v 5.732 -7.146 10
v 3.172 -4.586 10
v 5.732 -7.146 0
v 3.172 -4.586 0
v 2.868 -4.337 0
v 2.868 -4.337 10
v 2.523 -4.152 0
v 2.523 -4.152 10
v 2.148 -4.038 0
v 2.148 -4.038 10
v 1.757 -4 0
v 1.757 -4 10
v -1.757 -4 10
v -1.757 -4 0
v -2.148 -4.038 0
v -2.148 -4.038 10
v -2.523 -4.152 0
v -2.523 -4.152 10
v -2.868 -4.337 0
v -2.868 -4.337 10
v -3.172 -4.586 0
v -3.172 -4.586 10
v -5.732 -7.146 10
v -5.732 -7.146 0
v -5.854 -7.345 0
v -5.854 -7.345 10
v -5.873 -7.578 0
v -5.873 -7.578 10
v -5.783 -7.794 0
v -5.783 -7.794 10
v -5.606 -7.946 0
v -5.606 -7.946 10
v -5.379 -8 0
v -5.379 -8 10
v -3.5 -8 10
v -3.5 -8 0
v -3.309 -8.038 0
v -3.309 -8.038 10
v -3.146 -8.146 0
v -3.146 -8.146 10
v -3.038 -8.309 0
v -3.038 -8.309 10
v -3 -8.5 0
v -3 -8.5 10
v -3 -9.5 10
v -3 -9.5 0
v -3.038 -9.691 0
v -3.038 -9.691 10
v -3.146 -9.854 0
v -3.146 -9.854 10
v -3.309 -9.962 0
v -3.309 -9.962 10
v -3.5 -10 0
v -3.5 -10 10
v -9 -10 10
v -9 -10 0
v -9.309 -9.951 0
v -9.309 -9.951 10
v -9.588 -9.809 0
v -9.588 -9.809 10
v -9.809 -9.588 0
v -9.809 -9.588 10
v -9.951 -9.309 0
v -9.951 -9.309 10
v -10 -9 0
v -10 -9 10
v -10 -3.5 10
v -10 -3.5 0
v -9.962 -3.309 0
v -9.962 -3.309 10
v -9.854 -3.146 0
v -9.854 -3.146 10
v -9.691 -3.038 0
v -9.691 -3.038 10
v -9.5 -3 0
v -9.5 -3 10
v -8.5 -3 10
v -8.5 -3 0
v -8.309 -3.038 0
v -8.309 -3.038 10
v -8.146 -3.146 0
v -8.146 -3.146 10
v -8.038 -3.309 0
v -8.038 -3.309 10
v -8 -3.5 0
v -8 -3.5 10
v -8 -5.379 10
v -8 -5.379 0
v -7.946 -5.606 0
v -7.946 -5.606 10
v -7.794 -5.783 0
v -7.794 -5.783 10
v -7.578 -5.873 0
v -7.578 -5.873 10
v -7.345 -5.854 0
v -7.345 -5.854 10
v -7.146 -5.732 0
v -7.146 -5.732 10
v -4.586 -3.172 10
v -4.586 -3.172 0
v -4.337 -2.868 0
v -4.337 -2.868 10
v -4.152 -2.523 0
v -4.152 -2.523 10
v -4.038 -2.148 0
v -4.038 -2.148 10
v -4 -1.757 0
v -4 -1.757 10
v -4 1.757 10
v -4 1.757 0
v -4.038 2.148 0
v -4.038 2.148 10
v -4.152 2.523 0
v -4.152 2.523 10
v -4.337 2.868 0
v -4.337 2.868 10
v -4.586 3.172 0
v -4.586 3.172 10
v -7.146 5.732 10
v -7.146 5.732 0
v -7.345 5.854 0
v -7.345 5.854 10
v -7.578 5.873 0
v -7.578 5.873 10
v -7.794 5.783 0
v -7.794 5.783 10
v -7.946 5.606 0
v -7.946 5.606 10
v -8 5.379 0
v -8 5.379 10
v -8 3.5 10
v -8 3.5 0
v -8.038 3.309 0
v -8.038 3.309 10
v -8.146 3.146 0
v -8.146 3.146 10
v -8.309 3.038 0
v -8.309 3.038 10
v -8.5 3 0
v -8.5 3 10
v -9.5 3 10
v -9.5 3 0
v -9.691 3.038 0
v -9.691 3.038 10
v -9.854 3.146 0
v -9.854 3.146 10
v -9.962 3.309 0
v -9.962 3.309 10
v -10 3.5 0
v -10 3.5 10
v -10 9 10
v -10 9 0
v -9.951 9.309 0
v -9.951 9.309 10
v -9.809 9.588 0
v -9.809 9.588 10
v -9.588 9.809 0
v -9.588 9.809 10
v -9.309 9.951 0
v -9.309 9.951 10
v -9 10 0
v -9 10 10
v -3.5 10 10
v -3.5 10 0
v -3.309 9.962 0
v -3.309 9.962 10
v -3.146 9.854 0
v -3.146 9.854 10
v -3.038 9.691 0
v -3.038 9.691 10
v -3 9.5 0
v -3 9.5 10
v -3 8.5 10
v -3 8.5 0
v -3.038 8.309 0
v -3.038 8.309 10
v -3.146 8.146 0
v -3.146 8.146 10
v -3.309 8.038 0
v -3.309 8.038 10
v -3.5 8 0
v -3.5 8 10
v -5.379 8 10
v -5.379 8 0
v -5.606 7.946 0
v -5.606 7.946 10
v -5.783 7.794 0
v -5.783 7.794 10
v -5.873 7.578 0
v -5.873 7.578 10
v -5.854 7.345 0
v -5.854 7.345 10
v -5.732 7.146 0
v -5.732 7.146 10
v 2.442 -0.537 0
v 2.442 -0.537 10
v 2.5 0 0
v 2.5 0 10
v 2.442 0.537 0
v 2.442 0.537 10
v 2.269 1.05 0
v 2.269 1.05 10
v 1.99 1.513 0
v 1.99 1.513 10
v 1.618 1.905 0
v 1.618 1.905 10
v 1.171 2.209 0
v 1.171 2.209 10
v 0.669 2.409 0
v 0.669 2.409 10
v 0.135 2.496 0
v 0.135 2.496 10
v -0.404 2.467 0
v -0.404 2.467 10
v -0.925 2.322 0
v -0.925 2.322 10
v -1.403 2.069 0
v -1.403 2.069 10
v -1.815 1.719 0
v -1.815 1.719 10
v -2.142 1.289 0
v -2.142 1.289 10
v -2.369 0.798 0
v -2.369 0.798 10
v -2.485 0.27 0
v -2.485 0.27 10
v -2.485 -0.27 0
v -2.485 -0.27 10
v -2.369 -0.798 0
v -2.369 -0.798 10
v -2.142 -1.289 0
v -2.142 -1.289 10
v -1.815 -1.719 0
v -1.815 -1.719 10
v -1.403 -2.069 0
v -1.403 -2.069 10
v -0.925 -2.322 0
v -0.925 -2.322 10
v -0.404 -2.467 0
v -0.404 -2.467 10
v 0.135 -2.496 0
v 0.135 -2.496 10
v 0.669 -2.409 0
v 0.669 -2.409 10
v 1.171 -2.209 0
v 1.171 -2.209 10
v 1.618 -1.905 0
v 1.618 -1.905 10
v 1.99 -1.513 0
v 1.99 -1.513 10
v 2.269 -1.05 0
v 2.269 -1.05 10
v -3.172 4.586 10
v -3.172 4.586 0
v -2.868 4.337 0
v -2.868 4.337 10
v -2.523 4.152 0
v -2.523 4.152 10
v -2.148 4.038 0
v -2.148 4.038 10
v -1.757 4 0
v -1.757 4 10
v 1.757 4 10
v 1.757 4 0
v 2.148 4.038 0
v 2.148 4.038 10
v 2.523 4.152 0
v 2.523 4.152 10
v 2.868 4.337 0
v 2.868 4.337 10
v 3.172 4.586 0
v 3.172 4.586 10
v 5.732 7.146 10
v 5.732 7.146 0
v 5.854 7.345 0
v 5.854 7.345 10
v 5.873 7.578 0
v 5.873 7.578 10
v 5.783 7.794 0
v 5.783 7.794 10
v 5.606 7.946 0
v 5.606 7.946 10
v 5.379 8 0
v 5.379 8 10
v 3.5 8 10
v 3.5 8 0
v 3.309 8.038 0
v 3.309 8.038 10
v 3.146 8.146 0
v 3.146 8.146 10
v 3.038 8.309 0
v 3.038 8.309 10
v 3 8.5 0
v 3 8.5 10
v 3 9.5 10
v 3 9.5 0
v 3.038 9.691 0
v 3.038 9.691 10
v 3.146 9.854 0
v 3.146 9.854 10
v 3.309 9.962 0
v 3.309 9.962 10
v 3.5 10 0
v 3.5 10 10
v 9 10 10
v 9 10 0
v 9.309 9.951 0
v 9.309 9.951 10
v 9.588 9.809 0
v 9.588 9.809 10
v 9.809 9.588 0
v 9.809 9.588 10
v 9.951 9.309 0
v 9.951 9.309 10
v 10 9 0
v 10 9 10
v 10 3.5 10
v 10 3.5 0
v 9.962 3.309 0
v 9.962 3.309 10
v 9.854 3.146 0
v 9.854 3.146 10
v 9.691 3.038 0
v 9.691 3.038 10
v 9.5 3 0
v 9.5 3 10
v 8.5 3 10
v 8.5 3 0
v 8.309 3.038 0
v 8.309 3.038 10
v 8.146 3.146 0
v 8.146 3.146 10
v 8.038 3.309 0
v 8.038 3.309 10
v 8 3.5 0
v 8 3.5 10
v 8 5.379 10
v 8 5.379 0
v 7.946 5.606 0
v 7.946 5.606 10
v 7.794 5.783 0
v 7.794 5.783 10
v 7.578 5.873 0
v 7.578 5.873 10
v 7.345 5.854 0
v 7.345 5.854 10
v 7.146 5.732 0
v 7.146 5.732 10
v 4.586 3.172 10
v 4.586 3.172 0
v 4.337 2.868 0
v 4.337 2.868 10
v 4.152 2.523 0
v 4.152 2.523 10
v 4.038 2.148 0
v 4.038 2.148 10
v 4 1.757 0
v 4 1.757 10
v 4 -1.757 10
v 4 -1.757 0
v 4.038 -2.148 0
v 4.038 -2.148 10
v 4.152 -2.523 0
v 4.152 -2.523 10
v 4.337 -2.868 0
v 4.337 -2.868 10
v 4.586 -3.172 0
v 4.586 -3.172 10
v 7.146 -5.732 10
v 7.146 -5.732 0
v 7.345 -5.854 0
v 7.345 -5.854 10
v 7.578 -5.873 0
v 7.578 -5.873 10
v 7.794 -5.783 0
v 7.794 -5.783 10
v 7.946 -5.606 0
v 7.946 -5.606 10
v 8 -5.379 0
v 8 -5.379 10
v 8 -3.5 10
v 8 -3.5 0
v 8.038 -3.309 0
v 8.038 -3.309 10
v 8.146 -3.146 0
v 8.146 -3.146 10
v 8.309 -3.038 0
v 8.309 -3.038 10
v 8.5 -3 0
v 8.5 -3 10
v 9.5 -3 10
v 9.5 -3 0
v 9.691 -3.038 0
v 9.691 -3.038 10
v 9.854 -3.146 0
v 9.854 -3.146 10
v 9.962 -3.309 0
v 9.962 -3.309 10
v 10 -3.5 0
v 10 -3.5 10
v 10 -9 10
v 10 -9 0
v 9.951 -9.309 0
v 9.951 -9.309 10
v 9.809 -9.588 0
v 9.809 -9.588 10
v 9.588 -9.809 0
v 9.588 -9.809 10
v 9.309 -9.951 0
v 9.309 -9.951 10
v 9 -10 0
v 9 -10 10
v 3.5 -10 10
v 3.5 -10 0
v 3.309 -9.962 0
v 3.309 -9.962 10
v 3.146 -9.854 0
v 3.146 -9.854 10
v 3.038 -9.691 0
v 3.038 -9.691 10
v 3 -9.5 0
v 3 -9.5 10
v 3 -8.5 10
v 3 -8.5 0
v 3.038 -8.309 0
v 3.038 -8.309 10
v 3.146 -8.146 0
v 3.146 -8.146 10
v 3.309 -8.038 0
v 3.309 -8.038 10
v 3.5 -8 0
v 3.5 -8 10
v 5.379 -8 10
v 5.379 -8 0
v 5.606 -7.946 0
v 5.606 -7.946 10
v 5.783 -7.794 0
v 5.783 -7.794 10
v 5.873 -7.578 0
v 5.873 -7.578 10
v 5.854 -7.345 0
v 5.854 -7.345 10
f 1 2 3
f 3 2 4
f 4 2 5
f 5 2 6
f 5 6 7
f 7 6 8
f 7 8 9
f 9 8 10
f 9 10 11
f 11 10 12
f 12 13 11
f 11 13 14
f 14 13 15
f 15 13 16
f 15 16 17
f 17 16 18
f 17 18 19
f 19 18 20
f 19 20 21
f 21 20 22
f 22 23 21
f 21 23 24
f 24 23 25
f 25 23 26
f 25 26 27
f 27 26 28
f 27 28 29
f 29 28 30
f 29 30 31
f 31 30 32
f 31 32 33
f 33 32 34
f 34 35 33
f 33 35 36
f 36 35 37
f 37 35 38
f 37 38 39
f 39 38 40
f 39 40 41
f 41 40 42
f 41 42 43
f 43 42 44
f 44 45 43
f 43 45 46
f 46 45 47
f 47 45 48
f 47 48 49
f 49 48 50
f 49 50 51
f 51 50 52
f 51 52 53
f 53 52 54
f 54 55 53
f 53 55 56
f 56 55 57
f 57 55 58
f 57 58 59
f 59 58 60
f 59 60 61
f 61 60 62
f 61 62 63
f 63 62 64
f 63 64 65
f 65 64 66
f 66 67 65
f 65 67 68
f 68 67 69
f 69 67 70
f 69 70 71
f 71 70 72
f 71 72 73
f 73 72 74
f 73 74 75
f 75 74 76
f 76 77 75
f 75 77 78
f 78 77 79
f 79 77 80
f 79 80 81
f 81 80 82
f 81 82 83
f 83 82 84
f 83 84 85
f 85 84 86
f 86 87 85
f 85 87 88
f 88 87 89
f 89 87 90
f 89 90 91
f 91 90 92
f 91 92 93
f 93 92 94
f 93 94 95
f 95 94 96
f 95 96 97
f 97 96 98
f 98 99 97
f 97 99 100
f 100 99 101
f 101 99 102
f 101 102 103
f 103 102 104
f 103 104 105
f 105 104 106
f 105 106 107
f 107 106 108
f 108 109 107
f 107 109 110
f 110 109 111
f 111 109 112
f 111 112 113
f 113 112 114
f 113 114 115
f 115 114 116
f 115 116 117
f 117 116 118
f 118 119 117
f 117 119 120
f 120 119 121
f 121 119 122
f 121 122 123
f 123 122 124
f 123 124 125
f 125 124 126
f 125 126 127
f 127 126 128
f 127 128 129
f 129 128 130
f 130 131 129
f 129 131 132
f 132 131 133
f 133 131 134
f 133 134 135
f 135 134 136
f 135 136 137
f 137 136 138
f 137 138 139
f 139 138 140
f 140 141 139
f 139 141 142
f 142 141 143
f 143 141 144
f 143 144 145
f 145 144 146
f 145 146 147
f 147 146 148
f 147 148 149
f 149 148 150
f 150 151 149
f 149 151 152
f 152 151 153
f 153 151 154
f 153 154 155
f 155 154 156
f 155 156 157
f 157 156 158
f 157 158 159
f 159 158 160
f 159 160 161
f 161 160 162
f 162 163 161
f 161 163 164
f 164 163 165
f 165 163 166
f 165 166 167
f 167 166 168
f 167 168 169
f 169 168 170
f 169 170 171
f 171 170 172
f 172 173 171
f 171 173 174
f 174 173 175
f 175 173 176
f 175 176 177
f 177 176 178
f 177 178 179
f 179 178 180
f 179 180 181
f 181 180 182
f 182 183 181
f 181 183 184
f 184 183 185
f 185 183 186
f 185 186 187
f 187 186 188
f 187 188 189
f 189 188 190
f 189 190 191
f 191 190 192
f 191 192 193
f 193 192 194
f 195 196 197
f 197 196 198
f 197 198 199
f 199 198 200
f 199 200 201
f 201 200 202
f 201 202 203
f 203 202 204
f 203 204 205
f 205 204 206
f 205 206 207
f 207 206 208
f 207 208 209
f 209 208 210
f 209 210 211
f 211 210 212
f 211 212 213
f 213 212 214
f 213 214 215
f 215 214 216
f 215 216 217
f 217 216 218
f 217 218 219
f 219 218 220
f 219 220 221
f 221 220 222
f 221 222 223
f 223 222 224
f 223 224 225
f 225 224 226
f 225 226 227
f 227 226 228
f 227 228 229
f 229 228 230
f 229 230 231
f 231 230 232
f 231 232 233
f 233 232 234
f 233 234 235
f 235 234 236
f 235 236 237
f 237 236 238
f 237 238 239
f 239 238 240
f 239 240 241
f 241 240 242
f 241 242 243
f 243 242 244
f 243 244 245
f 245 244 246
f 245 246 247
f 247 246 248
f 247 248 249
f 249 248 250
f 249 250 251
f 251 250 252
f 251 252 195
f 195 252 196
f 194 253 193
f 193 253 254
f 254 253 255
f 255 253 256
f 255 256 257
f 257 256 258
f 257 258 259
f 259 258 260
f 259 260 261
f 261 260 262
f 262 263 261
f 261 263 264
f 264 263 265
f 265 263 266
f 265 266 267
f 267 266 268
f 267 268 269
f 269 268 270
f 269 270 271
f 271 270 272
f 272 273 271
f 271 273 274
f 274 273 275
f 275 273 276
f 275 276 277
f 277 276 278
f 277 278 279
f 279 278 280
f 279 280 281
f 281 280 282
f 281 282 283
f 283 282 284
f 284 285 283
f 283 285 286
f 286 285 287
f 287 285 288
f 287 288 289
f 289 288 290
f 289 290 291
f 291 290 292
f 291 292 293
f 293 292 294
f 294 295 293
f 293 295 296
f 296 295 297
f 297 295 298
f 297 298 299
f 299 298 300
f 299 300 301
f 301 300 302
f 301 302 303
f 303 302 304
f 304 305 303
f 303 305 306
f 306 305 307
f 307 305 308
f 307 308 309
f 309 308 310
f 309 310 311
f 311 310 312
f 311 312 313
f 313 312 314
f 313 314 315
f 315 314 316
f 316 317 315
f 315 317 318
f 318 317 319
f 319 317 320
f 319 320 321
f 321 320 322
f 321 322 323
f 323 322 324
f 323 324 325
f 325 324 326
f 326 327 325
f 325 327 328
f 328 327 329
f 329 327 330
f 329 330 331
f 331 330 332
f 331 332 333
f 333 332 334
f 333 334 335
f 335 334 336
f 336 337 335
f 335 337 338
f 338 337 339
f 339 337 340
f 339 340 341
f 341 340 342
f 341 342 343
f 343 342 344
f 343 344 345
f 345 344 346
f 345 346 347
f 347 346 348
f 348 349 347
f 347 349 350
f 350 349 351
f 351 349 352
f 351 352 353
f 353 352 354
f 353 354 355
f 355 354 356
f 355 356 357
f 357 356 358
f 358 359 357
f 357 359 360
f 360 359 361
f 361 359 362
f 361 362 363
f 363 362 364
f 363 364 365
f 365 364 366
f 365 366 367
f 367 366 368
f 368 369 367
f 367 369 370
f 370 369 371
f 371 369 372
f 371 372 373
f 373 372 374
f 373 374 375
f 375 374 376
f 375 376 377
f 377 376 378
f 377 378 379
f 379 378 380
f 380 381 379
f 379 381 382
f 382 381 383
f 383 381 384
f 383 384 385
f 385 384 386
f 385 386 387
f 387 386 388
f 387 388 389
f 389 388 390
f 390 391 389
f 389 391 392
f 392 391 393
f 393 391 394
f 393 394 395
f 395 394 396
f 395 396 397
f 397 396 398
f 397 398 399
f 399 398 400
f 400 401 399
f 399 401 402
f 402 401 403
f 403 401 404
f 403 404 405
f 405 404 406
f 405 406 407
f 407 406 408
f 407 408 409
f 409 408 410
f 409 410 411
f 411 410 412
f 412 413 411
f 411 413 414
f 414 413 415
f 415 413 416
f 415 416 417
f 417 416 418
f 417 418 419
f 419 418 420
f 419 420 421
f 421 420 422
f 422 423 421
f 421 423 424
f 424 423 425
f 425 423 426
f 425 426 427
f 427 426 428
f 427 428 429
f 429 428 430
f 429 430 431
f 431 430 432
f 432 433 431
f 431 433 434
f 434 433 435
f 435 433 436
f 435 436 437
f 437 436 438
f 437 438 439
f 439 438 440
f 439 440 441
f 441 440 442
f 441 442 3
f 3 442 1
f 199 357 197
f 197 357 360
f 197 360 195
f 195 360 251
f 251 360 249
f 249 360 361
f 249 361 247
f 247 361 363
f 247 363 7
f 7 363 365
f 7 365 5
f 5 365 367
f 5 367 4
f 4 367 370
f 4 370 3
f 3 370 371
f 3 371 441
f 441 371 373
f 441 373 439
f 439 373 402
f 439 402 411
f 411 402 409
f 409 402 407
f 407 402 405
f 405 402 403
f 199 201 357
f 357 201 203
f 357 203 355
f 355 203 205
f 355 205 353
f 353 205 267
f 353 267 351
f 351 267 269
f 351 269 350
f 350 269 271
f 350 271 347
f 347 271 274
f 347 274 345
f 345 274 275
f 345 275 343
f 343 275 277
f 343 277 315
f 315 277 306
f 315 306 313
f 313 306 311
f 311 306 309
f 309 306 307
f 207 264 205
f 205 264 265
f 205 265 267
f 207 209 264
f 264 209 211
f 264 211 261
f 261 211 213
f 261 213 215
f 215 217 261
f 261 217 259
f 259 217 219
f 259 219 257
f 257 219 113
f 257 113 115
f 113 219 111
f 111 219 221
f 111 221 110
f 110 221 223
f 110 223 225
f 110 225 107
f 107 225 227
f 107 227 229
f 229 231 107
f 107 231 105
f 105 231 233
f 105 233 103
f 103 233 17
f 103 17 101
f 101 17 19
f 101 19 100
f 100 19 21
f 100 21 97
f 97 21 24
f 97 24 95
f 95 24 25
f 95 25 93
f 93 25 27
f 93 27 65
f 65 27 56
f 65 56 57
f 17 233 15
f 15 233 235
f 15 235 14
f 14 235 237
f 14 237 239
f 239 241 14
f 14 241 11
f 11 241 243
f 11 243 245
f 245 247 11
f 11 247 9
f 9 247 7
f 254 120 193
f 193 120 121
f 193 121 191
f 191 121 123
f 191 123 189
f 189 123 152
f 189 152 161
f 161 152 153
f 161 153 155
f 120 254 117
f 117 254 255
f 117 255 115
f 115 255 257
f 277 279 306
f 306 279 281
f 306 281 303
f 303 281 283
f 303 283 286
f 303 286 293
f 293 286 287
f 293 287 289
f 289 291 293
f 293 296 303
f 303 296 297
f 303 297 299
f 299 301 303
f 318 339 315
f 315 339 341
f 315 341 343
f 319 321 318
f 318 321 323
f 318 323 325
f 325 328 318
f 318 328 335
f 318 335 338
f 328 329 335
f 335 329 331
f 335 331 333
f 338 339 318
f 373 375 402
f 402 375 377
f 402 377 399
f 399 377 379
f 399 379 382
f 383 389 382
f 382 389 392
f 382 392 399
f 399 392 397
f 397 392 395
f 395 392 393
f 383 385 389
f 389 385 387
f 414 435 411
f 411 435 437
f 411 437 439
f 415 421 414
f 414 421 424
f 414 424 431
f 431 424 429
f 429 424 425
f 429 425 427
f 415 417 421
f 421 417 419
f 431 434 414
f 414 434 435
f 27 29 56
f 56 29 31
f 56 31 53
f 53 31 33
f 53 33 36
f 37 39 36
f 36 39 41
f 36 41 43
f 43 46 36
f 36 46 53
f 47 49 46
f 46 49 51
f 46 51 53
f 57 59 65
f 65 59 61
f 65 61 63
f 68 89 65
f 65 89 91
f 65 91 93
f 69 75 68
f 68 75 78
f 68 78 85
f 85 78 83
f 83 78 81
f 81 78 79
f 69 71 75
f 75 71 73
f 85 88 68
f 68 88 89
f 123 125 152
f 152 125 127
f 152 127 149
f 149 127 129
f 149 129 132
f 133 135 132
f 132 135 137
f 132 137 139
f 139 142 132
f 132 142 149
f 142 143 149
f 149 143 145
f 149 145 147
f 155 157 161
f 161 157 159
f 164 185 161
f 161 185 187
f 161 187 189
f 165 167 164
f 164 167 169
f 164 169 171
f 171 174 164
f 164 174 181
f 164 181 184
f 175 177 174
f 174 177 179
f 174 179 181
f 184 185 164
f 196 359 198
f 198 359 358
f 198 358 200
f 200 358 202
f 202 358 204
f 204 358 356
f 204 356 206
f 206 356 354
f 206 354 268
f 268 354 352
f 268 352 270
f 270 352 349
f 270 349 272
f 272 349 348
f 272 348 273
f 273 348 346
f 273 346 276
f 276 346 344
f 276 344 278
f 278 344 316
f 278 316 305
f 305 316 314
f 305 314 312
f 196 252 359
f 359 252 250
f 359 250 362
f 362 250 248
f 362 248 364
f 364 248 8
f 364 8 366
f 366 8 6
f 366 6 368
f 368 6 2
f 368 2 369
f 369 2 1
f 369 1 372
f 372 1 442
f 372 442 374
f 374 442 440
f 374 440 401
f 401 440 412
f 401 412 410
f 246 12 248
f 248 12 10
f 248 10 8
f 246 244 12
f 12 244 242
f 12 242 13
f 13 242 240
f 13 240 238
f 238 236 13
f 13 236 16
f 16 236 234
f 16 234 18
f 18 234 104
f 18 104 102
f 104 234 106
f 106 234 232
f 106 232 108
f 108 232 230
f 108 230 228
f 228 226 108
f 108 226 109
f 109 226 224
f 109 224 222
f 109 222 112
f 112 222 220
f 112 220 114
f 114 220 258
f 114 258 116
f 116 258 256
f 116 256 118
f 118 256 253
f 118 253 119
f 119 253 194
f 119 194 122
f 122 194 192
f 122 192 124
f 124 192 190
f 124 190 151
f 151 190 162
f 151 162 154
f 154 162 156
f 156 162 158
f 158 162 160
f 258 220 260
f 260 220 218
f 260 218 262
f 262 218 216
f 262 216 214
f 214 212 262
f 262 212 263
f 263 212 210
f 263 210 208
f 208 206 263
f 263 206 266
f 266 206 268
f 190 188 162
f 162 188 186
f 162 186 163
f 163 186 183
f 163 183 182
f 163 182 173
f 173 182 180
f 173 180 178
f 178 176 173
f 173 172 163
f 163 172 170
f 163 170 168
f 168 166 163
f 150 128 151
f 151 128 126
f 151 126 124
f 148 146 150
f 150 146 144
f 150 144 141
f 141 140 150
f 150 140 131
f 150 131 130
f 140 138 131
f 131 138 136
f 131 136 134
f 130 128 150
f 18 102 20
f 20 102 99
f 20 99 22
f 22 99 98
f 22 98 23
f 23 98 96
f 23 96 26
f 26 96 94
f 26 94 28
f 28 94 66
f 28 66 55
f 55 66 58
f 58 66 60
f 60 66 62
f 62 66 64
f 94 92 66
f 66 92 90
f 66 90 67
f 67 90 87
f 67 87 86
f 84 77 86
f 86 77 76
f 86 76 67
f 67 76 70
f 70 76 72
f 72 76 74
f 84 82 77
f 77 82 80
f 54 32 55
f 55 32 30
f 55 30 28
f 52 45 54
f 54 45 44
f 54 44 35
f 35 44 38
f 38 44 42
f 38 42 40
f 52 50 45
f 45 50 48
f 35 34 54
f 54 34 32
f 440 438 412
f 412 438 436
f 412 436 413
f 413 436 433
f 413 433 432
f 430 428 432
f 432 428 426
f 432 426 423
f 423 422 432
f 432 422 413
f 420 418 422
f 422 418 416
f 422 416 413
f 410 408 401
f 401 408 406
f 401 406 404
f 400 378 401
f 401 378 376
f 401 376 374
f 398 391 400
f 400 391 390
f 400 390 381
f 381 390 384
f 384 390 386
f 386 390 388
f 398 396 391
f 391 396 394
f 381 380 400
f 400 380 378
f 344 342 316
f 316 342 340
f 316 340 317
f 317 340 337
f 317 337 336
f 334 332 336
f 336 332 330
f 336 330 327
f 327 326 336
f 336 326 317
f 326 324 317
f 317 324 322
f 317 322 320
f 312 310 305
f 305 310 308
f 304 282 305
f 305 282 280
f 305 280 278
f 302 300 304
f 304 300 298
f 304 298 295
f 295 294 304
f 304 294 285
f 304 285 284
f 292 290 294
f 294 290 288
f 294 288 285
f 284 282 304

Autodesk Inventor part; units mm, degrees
ref_plane "YZ Plane" through (0, 0, 0) normal (1, 0, 0) x (0, 1, 0)
ref_plane "Start Plane" through (0, 0, 0) normal (0, 0, 1) x (1, 0, 0)
ref_plane "End Plane" through (0, 0, 10) normal (0, 0, 1) x (1, 0, 0)
sketch "Sketch1" plane through (0, 0, 0) normal (0, 0, 1) x (1, 0, 0)
  line L0 (0, 0) -> (2.5, 0) construction
  line L1 (0, 0) -> (0, 2.5) construction
  line L2 (0, 4) -> (0, -4) construction
  line L3 (0, 4) -> (1.7574, 4)
  arc A0 (1.7574, 4) -> (3.1716, 4.5858) centre (1.7574, 6) ccw
  line L4 (3.1716, 4.5858) -> (5.7322, 7.1464)
  line L5 (-4, 0) -> (4, 0) construction
  line L6 (4, 0) -> (4, 1.7574)
  arc A1 (4.5858, 3.1716) -> (4, 1.7574) centre (6, 1.7574) ccw
  line L7 (4.5858, 3.1716) -> (7.1464, 5.7322)
  line L8 (0, 0) -> (10, 10) construction
  line L9 (0, 0) -> (19.6827, 0) construction
  arc A2 (8, 5.3787) -> (7.1464, 5.7322) centre (7.5, 5.3787) ccw
  line L10 (8, 5.3787) -> (8, 3.5)
  arc A3 (8, 3.5) -> (8.5, 3) centre (8.5, 3.5) ccw
  line L11 (8.5, 3) -> (9.5, 3)
  arc A4 (9.5, 3) -> (10, 3.5) centre (9.5, 3.5) ccw
  line L12 (10, 3.5) -> (10, 9)
  line L13 (10, 9) -> (10, 10) construction
  arc A5 (5.7322, 7.1464) -> (5.3787, 8) centre (5.3787, 7.5) ccw
  line L14 (5.3787, 8) -> (3.5, 8)
  arc A6 (3, 8.5) -> (3.5, 8) centre (3.5, 8.5) ccw
  line L15 (3, 8.5) -> (3, 9.5)
  arc A7 (3.5, 10) -> (3, 9.5) centre (3.5, 9.5) ccw
  line L16 (3.5, 10) -> (9, 10)
  arc A8 (10, 9) -> (9, 10) centre (9, 9) ccw
  line L17 (0, 4) -> (-1.7574, 4)
  arc A9 (-3.1716, 4.5858) -> (-1.7574, 4) centre (-1.7574, 6) ccw
  line L18 (-3.1716, 4.5858) -> (-5.7322, 7.1464)
  line L19 (-4, 0) -> (-4, 1.7574)
  arc A10 (-4, 1.7574) -> (-4.5858, 3.1716) centre (-6, 1.7574) ccw
  line L20 (-4.5858, 3.1716) -> (-7.1464, 5.7322)
  arc A11 (-7.1464, 5.7322) -> (-8, 5.3787) centre (-7.5, 5.3787) ccw
  line L21 (-8, 5.3787) -> (-8, 3.5)
  arc A12 (-8.5, 3) -> (-8, 3.5) centre (-8.5, 3.5) ccw
  line L22 (-8.5, 3) -> (-9.5, 3)
  arc A13 (-10, 3.5) -> (-9.5, 3) centre (-9.5, 3.5) ccw
  line L23 (-10, 3.5) -> (-10, 9)
  arc A14 (-5.3787, 8) -> (-5.7322, 7.1464) centre (-5.3787, 7.5) ccw
  line L24 (-5.3787, 8) -> (-3.5, 8)
  arc A15 (-3.5, 8) -> (-3, 8.5) centre (-3.5, 8.5) ccw
  line L25 (-3, 8.5) -> (-3, 9.5)
  arc A16 (-3, 9.5) -> (-3.5, 10) centre (-3.5, 9.5) ccw
  line L26 (-3.5, 10) -> (-9, 10)
  arc A17 (-9, 10) -> (-10, 9) centre (-9, 9) ccw
  line L27 (0, -4) -> (-1.7574, -4)
  arc A18 (-1.7574, -4) -> (-3.1716, -4.5858) centre (-1.7574, -6) ccw
  line L28 (-3.1716, -4.5858) -> (-5.7322, -7.1464)
  arc A19 (-5.7322, -7.1464) -> (-5.3787, -8) centre (-5.3787, -7.5) ccw
  line L29 (-5.3787, -8) -> (-3.5, -8)
  arc A20 (-3, -8.5) -> (-3.5, -8) centre (-3.5, -8.5) ccw
  line L30 (-3, -8.5) -> (-3, -9.5)
  arc A21 (-3.5, -10) -> (-3, -9.5) centre (-3.5, -9.5) ccw
  line L31 (-3.5, -10) -> (-9, -10)
  arc A22 (-10, -9) -> (-9, -10) centre (-9, -9) ccw
  line L32 (-10, -3.5) -> (-10, -9)
  arc A23 (-9.5, -3) -> (-10, -3.5) centre (-9.5, -3.5) ccw
  line L33 (-8.5, -3) -> (-9.5, -3)
  arc A24 (-8, -3.5) -> (-8.5, -3) centre (-8.5, -3.5) ccw
  line L34 (-8, -5.3787) -> (-8, -3.5)
  arc A25 (-8, -5.3787) -> (-7.1464, -5.7322) centre (-7.5, -5.3787) ccw
  line L35 (-4.5858, -3.1716) -> (-7.1464, -5.7322)
  arc A26 (-4.5858, -3.1716) -> (-4, -1.7574) centre (-6, -1.7574) ccw
  line L36 (-4, 0) -> (-4, -1.7574)
  line L37 (3.5, -10) -> (9, -10)
  arc A27 (9, -10) -> (10, -9) centre (9, -9) ccw
  line L38 (10, -3.5) -> (10, -9)
  arc A28 (10, -3.5) -> (9.5, -3) centre (9.5, -3.5) ccw
  line L39 (8.5, -3) -> (9.5, -3)
  arc A29 (8.5, -3) -> (8, -3.5) centre (8.5, -3.5) ccw
  line L40 (8, -5.3787) -> (8, -3.5)
  arc A30 (7.1464, -5.7322) -> (8, -5.3787) centre (7.5, -5.3787) ccw
  line L41 (4.5858, -3.1716) -> (7.1464, -5.7322)
  arc A31 (4, -1.7574) -> (4.5858, -3.1716) centre (6, -1.7574) ccw
  line L42 (4, 0) -> (4, -1.7574)
  line L43 (5.3787, -8) -> (3.5, -8)
  arc A32 (5.3787, -8) -> (5.7322, -7.1464) centre (5.3787, -7.5) ccw
  line L44 (3.1716, -4.5858) -> (5.7322, -7.1464)
  arc A33 (3.1716, -4.5858) -> (1.7574, -4) centre (1.7574, -6) ccw
  line L45 (0, -4) -> (1.7574, -4)
  arc A34 (3.5, -8) -> (3, -8.5) centre (3.5, -8.5) ccw
  line L46 (3, -8.5) -> (3, -9.5)
  arc A35 (3, -9.5) -> (3.5, -10) centre (3.5, -9.5) ccw
  circle A36 centre (0, 0) radius 2.5
  dimension "d1" = 8
  dimension "d2" = 2
  dimension "d3" = 8
  dimension "d4" = 2
  dimension "d5" = 2
  dimension "d7" = 45
  dimension "d8" = 0.5
  dimension "d9" = 0.5
  dimension "d10" = 0.5
  dimension "d12" = 2
  dimension "d17" = 7
  dimension "d18" = 10
  dimension "d19" = 0.5
  dimension "d20" = 1
  dimension "d21" = 0.5
  dimension "d22" = 0.5
  dimension "d23" = 2
  dimension "d24" = 7
  dimension "d25" = 5
extrude "Body" add sketch "Sketch1" along normal up to surface (10 mm away) from surface at 0
sketch "Sketch2" plane through (0, 0, 0) normal (0, 0, 1) x (1, 0, 0)
  line L0 (0, 0) -> (10, 0)
ref_plane "Work Plane3" through (0, 0, 0) normal (0, -1, 0) x (1, 0, 0)
sketch "Sketch3" plane through (0, 0, 0) normal (0, -1, 0) x (1, 0, 0)
  line L0 (-14, 0) -> (14, 0)
  line L1 (-14, 10) -> (14, 10)
  dimension "d33" = 10
equation "\"d1\" = 8 * sigma"
equation "\"d2\" = 2 * sigma"
equation "\"d3\" = 8 * sigma"
equation "\"d4\" = 2 * sigma"
equation "\"d5\" = 2 * sigma"
equation "\"d8\" = 0.5 * sigma"
equation "\"d9\" = 0.5 * sigma"
equation "\"d10\" = 0.5 * sigma"
equation "\"d12\" = 2 * sigma"
equation "\"d17\" = 7 * sigma"
equation "\"d18\" = sigma"
equation "\"d19\" = 0.5 * sigma"
equation "\"d20\" = sigma"
equation "\"d21\" = 0.5 * sigma"
equation "\"d22\" = 0.5 * sigma"
equation "\"d23\" = 2 * sigma"
equation "\"d24\" = 7 * sigma"
equation "\"d25\" = 5 * sigma"
equation "\"sigma\" = 1"
equation "\"G_OFFSET_START\" = 0"
equation "\"G_OFFSET_END\" = 0"
equation "\"G_L\" = d33"
properties part number "A3.3-MEM"
